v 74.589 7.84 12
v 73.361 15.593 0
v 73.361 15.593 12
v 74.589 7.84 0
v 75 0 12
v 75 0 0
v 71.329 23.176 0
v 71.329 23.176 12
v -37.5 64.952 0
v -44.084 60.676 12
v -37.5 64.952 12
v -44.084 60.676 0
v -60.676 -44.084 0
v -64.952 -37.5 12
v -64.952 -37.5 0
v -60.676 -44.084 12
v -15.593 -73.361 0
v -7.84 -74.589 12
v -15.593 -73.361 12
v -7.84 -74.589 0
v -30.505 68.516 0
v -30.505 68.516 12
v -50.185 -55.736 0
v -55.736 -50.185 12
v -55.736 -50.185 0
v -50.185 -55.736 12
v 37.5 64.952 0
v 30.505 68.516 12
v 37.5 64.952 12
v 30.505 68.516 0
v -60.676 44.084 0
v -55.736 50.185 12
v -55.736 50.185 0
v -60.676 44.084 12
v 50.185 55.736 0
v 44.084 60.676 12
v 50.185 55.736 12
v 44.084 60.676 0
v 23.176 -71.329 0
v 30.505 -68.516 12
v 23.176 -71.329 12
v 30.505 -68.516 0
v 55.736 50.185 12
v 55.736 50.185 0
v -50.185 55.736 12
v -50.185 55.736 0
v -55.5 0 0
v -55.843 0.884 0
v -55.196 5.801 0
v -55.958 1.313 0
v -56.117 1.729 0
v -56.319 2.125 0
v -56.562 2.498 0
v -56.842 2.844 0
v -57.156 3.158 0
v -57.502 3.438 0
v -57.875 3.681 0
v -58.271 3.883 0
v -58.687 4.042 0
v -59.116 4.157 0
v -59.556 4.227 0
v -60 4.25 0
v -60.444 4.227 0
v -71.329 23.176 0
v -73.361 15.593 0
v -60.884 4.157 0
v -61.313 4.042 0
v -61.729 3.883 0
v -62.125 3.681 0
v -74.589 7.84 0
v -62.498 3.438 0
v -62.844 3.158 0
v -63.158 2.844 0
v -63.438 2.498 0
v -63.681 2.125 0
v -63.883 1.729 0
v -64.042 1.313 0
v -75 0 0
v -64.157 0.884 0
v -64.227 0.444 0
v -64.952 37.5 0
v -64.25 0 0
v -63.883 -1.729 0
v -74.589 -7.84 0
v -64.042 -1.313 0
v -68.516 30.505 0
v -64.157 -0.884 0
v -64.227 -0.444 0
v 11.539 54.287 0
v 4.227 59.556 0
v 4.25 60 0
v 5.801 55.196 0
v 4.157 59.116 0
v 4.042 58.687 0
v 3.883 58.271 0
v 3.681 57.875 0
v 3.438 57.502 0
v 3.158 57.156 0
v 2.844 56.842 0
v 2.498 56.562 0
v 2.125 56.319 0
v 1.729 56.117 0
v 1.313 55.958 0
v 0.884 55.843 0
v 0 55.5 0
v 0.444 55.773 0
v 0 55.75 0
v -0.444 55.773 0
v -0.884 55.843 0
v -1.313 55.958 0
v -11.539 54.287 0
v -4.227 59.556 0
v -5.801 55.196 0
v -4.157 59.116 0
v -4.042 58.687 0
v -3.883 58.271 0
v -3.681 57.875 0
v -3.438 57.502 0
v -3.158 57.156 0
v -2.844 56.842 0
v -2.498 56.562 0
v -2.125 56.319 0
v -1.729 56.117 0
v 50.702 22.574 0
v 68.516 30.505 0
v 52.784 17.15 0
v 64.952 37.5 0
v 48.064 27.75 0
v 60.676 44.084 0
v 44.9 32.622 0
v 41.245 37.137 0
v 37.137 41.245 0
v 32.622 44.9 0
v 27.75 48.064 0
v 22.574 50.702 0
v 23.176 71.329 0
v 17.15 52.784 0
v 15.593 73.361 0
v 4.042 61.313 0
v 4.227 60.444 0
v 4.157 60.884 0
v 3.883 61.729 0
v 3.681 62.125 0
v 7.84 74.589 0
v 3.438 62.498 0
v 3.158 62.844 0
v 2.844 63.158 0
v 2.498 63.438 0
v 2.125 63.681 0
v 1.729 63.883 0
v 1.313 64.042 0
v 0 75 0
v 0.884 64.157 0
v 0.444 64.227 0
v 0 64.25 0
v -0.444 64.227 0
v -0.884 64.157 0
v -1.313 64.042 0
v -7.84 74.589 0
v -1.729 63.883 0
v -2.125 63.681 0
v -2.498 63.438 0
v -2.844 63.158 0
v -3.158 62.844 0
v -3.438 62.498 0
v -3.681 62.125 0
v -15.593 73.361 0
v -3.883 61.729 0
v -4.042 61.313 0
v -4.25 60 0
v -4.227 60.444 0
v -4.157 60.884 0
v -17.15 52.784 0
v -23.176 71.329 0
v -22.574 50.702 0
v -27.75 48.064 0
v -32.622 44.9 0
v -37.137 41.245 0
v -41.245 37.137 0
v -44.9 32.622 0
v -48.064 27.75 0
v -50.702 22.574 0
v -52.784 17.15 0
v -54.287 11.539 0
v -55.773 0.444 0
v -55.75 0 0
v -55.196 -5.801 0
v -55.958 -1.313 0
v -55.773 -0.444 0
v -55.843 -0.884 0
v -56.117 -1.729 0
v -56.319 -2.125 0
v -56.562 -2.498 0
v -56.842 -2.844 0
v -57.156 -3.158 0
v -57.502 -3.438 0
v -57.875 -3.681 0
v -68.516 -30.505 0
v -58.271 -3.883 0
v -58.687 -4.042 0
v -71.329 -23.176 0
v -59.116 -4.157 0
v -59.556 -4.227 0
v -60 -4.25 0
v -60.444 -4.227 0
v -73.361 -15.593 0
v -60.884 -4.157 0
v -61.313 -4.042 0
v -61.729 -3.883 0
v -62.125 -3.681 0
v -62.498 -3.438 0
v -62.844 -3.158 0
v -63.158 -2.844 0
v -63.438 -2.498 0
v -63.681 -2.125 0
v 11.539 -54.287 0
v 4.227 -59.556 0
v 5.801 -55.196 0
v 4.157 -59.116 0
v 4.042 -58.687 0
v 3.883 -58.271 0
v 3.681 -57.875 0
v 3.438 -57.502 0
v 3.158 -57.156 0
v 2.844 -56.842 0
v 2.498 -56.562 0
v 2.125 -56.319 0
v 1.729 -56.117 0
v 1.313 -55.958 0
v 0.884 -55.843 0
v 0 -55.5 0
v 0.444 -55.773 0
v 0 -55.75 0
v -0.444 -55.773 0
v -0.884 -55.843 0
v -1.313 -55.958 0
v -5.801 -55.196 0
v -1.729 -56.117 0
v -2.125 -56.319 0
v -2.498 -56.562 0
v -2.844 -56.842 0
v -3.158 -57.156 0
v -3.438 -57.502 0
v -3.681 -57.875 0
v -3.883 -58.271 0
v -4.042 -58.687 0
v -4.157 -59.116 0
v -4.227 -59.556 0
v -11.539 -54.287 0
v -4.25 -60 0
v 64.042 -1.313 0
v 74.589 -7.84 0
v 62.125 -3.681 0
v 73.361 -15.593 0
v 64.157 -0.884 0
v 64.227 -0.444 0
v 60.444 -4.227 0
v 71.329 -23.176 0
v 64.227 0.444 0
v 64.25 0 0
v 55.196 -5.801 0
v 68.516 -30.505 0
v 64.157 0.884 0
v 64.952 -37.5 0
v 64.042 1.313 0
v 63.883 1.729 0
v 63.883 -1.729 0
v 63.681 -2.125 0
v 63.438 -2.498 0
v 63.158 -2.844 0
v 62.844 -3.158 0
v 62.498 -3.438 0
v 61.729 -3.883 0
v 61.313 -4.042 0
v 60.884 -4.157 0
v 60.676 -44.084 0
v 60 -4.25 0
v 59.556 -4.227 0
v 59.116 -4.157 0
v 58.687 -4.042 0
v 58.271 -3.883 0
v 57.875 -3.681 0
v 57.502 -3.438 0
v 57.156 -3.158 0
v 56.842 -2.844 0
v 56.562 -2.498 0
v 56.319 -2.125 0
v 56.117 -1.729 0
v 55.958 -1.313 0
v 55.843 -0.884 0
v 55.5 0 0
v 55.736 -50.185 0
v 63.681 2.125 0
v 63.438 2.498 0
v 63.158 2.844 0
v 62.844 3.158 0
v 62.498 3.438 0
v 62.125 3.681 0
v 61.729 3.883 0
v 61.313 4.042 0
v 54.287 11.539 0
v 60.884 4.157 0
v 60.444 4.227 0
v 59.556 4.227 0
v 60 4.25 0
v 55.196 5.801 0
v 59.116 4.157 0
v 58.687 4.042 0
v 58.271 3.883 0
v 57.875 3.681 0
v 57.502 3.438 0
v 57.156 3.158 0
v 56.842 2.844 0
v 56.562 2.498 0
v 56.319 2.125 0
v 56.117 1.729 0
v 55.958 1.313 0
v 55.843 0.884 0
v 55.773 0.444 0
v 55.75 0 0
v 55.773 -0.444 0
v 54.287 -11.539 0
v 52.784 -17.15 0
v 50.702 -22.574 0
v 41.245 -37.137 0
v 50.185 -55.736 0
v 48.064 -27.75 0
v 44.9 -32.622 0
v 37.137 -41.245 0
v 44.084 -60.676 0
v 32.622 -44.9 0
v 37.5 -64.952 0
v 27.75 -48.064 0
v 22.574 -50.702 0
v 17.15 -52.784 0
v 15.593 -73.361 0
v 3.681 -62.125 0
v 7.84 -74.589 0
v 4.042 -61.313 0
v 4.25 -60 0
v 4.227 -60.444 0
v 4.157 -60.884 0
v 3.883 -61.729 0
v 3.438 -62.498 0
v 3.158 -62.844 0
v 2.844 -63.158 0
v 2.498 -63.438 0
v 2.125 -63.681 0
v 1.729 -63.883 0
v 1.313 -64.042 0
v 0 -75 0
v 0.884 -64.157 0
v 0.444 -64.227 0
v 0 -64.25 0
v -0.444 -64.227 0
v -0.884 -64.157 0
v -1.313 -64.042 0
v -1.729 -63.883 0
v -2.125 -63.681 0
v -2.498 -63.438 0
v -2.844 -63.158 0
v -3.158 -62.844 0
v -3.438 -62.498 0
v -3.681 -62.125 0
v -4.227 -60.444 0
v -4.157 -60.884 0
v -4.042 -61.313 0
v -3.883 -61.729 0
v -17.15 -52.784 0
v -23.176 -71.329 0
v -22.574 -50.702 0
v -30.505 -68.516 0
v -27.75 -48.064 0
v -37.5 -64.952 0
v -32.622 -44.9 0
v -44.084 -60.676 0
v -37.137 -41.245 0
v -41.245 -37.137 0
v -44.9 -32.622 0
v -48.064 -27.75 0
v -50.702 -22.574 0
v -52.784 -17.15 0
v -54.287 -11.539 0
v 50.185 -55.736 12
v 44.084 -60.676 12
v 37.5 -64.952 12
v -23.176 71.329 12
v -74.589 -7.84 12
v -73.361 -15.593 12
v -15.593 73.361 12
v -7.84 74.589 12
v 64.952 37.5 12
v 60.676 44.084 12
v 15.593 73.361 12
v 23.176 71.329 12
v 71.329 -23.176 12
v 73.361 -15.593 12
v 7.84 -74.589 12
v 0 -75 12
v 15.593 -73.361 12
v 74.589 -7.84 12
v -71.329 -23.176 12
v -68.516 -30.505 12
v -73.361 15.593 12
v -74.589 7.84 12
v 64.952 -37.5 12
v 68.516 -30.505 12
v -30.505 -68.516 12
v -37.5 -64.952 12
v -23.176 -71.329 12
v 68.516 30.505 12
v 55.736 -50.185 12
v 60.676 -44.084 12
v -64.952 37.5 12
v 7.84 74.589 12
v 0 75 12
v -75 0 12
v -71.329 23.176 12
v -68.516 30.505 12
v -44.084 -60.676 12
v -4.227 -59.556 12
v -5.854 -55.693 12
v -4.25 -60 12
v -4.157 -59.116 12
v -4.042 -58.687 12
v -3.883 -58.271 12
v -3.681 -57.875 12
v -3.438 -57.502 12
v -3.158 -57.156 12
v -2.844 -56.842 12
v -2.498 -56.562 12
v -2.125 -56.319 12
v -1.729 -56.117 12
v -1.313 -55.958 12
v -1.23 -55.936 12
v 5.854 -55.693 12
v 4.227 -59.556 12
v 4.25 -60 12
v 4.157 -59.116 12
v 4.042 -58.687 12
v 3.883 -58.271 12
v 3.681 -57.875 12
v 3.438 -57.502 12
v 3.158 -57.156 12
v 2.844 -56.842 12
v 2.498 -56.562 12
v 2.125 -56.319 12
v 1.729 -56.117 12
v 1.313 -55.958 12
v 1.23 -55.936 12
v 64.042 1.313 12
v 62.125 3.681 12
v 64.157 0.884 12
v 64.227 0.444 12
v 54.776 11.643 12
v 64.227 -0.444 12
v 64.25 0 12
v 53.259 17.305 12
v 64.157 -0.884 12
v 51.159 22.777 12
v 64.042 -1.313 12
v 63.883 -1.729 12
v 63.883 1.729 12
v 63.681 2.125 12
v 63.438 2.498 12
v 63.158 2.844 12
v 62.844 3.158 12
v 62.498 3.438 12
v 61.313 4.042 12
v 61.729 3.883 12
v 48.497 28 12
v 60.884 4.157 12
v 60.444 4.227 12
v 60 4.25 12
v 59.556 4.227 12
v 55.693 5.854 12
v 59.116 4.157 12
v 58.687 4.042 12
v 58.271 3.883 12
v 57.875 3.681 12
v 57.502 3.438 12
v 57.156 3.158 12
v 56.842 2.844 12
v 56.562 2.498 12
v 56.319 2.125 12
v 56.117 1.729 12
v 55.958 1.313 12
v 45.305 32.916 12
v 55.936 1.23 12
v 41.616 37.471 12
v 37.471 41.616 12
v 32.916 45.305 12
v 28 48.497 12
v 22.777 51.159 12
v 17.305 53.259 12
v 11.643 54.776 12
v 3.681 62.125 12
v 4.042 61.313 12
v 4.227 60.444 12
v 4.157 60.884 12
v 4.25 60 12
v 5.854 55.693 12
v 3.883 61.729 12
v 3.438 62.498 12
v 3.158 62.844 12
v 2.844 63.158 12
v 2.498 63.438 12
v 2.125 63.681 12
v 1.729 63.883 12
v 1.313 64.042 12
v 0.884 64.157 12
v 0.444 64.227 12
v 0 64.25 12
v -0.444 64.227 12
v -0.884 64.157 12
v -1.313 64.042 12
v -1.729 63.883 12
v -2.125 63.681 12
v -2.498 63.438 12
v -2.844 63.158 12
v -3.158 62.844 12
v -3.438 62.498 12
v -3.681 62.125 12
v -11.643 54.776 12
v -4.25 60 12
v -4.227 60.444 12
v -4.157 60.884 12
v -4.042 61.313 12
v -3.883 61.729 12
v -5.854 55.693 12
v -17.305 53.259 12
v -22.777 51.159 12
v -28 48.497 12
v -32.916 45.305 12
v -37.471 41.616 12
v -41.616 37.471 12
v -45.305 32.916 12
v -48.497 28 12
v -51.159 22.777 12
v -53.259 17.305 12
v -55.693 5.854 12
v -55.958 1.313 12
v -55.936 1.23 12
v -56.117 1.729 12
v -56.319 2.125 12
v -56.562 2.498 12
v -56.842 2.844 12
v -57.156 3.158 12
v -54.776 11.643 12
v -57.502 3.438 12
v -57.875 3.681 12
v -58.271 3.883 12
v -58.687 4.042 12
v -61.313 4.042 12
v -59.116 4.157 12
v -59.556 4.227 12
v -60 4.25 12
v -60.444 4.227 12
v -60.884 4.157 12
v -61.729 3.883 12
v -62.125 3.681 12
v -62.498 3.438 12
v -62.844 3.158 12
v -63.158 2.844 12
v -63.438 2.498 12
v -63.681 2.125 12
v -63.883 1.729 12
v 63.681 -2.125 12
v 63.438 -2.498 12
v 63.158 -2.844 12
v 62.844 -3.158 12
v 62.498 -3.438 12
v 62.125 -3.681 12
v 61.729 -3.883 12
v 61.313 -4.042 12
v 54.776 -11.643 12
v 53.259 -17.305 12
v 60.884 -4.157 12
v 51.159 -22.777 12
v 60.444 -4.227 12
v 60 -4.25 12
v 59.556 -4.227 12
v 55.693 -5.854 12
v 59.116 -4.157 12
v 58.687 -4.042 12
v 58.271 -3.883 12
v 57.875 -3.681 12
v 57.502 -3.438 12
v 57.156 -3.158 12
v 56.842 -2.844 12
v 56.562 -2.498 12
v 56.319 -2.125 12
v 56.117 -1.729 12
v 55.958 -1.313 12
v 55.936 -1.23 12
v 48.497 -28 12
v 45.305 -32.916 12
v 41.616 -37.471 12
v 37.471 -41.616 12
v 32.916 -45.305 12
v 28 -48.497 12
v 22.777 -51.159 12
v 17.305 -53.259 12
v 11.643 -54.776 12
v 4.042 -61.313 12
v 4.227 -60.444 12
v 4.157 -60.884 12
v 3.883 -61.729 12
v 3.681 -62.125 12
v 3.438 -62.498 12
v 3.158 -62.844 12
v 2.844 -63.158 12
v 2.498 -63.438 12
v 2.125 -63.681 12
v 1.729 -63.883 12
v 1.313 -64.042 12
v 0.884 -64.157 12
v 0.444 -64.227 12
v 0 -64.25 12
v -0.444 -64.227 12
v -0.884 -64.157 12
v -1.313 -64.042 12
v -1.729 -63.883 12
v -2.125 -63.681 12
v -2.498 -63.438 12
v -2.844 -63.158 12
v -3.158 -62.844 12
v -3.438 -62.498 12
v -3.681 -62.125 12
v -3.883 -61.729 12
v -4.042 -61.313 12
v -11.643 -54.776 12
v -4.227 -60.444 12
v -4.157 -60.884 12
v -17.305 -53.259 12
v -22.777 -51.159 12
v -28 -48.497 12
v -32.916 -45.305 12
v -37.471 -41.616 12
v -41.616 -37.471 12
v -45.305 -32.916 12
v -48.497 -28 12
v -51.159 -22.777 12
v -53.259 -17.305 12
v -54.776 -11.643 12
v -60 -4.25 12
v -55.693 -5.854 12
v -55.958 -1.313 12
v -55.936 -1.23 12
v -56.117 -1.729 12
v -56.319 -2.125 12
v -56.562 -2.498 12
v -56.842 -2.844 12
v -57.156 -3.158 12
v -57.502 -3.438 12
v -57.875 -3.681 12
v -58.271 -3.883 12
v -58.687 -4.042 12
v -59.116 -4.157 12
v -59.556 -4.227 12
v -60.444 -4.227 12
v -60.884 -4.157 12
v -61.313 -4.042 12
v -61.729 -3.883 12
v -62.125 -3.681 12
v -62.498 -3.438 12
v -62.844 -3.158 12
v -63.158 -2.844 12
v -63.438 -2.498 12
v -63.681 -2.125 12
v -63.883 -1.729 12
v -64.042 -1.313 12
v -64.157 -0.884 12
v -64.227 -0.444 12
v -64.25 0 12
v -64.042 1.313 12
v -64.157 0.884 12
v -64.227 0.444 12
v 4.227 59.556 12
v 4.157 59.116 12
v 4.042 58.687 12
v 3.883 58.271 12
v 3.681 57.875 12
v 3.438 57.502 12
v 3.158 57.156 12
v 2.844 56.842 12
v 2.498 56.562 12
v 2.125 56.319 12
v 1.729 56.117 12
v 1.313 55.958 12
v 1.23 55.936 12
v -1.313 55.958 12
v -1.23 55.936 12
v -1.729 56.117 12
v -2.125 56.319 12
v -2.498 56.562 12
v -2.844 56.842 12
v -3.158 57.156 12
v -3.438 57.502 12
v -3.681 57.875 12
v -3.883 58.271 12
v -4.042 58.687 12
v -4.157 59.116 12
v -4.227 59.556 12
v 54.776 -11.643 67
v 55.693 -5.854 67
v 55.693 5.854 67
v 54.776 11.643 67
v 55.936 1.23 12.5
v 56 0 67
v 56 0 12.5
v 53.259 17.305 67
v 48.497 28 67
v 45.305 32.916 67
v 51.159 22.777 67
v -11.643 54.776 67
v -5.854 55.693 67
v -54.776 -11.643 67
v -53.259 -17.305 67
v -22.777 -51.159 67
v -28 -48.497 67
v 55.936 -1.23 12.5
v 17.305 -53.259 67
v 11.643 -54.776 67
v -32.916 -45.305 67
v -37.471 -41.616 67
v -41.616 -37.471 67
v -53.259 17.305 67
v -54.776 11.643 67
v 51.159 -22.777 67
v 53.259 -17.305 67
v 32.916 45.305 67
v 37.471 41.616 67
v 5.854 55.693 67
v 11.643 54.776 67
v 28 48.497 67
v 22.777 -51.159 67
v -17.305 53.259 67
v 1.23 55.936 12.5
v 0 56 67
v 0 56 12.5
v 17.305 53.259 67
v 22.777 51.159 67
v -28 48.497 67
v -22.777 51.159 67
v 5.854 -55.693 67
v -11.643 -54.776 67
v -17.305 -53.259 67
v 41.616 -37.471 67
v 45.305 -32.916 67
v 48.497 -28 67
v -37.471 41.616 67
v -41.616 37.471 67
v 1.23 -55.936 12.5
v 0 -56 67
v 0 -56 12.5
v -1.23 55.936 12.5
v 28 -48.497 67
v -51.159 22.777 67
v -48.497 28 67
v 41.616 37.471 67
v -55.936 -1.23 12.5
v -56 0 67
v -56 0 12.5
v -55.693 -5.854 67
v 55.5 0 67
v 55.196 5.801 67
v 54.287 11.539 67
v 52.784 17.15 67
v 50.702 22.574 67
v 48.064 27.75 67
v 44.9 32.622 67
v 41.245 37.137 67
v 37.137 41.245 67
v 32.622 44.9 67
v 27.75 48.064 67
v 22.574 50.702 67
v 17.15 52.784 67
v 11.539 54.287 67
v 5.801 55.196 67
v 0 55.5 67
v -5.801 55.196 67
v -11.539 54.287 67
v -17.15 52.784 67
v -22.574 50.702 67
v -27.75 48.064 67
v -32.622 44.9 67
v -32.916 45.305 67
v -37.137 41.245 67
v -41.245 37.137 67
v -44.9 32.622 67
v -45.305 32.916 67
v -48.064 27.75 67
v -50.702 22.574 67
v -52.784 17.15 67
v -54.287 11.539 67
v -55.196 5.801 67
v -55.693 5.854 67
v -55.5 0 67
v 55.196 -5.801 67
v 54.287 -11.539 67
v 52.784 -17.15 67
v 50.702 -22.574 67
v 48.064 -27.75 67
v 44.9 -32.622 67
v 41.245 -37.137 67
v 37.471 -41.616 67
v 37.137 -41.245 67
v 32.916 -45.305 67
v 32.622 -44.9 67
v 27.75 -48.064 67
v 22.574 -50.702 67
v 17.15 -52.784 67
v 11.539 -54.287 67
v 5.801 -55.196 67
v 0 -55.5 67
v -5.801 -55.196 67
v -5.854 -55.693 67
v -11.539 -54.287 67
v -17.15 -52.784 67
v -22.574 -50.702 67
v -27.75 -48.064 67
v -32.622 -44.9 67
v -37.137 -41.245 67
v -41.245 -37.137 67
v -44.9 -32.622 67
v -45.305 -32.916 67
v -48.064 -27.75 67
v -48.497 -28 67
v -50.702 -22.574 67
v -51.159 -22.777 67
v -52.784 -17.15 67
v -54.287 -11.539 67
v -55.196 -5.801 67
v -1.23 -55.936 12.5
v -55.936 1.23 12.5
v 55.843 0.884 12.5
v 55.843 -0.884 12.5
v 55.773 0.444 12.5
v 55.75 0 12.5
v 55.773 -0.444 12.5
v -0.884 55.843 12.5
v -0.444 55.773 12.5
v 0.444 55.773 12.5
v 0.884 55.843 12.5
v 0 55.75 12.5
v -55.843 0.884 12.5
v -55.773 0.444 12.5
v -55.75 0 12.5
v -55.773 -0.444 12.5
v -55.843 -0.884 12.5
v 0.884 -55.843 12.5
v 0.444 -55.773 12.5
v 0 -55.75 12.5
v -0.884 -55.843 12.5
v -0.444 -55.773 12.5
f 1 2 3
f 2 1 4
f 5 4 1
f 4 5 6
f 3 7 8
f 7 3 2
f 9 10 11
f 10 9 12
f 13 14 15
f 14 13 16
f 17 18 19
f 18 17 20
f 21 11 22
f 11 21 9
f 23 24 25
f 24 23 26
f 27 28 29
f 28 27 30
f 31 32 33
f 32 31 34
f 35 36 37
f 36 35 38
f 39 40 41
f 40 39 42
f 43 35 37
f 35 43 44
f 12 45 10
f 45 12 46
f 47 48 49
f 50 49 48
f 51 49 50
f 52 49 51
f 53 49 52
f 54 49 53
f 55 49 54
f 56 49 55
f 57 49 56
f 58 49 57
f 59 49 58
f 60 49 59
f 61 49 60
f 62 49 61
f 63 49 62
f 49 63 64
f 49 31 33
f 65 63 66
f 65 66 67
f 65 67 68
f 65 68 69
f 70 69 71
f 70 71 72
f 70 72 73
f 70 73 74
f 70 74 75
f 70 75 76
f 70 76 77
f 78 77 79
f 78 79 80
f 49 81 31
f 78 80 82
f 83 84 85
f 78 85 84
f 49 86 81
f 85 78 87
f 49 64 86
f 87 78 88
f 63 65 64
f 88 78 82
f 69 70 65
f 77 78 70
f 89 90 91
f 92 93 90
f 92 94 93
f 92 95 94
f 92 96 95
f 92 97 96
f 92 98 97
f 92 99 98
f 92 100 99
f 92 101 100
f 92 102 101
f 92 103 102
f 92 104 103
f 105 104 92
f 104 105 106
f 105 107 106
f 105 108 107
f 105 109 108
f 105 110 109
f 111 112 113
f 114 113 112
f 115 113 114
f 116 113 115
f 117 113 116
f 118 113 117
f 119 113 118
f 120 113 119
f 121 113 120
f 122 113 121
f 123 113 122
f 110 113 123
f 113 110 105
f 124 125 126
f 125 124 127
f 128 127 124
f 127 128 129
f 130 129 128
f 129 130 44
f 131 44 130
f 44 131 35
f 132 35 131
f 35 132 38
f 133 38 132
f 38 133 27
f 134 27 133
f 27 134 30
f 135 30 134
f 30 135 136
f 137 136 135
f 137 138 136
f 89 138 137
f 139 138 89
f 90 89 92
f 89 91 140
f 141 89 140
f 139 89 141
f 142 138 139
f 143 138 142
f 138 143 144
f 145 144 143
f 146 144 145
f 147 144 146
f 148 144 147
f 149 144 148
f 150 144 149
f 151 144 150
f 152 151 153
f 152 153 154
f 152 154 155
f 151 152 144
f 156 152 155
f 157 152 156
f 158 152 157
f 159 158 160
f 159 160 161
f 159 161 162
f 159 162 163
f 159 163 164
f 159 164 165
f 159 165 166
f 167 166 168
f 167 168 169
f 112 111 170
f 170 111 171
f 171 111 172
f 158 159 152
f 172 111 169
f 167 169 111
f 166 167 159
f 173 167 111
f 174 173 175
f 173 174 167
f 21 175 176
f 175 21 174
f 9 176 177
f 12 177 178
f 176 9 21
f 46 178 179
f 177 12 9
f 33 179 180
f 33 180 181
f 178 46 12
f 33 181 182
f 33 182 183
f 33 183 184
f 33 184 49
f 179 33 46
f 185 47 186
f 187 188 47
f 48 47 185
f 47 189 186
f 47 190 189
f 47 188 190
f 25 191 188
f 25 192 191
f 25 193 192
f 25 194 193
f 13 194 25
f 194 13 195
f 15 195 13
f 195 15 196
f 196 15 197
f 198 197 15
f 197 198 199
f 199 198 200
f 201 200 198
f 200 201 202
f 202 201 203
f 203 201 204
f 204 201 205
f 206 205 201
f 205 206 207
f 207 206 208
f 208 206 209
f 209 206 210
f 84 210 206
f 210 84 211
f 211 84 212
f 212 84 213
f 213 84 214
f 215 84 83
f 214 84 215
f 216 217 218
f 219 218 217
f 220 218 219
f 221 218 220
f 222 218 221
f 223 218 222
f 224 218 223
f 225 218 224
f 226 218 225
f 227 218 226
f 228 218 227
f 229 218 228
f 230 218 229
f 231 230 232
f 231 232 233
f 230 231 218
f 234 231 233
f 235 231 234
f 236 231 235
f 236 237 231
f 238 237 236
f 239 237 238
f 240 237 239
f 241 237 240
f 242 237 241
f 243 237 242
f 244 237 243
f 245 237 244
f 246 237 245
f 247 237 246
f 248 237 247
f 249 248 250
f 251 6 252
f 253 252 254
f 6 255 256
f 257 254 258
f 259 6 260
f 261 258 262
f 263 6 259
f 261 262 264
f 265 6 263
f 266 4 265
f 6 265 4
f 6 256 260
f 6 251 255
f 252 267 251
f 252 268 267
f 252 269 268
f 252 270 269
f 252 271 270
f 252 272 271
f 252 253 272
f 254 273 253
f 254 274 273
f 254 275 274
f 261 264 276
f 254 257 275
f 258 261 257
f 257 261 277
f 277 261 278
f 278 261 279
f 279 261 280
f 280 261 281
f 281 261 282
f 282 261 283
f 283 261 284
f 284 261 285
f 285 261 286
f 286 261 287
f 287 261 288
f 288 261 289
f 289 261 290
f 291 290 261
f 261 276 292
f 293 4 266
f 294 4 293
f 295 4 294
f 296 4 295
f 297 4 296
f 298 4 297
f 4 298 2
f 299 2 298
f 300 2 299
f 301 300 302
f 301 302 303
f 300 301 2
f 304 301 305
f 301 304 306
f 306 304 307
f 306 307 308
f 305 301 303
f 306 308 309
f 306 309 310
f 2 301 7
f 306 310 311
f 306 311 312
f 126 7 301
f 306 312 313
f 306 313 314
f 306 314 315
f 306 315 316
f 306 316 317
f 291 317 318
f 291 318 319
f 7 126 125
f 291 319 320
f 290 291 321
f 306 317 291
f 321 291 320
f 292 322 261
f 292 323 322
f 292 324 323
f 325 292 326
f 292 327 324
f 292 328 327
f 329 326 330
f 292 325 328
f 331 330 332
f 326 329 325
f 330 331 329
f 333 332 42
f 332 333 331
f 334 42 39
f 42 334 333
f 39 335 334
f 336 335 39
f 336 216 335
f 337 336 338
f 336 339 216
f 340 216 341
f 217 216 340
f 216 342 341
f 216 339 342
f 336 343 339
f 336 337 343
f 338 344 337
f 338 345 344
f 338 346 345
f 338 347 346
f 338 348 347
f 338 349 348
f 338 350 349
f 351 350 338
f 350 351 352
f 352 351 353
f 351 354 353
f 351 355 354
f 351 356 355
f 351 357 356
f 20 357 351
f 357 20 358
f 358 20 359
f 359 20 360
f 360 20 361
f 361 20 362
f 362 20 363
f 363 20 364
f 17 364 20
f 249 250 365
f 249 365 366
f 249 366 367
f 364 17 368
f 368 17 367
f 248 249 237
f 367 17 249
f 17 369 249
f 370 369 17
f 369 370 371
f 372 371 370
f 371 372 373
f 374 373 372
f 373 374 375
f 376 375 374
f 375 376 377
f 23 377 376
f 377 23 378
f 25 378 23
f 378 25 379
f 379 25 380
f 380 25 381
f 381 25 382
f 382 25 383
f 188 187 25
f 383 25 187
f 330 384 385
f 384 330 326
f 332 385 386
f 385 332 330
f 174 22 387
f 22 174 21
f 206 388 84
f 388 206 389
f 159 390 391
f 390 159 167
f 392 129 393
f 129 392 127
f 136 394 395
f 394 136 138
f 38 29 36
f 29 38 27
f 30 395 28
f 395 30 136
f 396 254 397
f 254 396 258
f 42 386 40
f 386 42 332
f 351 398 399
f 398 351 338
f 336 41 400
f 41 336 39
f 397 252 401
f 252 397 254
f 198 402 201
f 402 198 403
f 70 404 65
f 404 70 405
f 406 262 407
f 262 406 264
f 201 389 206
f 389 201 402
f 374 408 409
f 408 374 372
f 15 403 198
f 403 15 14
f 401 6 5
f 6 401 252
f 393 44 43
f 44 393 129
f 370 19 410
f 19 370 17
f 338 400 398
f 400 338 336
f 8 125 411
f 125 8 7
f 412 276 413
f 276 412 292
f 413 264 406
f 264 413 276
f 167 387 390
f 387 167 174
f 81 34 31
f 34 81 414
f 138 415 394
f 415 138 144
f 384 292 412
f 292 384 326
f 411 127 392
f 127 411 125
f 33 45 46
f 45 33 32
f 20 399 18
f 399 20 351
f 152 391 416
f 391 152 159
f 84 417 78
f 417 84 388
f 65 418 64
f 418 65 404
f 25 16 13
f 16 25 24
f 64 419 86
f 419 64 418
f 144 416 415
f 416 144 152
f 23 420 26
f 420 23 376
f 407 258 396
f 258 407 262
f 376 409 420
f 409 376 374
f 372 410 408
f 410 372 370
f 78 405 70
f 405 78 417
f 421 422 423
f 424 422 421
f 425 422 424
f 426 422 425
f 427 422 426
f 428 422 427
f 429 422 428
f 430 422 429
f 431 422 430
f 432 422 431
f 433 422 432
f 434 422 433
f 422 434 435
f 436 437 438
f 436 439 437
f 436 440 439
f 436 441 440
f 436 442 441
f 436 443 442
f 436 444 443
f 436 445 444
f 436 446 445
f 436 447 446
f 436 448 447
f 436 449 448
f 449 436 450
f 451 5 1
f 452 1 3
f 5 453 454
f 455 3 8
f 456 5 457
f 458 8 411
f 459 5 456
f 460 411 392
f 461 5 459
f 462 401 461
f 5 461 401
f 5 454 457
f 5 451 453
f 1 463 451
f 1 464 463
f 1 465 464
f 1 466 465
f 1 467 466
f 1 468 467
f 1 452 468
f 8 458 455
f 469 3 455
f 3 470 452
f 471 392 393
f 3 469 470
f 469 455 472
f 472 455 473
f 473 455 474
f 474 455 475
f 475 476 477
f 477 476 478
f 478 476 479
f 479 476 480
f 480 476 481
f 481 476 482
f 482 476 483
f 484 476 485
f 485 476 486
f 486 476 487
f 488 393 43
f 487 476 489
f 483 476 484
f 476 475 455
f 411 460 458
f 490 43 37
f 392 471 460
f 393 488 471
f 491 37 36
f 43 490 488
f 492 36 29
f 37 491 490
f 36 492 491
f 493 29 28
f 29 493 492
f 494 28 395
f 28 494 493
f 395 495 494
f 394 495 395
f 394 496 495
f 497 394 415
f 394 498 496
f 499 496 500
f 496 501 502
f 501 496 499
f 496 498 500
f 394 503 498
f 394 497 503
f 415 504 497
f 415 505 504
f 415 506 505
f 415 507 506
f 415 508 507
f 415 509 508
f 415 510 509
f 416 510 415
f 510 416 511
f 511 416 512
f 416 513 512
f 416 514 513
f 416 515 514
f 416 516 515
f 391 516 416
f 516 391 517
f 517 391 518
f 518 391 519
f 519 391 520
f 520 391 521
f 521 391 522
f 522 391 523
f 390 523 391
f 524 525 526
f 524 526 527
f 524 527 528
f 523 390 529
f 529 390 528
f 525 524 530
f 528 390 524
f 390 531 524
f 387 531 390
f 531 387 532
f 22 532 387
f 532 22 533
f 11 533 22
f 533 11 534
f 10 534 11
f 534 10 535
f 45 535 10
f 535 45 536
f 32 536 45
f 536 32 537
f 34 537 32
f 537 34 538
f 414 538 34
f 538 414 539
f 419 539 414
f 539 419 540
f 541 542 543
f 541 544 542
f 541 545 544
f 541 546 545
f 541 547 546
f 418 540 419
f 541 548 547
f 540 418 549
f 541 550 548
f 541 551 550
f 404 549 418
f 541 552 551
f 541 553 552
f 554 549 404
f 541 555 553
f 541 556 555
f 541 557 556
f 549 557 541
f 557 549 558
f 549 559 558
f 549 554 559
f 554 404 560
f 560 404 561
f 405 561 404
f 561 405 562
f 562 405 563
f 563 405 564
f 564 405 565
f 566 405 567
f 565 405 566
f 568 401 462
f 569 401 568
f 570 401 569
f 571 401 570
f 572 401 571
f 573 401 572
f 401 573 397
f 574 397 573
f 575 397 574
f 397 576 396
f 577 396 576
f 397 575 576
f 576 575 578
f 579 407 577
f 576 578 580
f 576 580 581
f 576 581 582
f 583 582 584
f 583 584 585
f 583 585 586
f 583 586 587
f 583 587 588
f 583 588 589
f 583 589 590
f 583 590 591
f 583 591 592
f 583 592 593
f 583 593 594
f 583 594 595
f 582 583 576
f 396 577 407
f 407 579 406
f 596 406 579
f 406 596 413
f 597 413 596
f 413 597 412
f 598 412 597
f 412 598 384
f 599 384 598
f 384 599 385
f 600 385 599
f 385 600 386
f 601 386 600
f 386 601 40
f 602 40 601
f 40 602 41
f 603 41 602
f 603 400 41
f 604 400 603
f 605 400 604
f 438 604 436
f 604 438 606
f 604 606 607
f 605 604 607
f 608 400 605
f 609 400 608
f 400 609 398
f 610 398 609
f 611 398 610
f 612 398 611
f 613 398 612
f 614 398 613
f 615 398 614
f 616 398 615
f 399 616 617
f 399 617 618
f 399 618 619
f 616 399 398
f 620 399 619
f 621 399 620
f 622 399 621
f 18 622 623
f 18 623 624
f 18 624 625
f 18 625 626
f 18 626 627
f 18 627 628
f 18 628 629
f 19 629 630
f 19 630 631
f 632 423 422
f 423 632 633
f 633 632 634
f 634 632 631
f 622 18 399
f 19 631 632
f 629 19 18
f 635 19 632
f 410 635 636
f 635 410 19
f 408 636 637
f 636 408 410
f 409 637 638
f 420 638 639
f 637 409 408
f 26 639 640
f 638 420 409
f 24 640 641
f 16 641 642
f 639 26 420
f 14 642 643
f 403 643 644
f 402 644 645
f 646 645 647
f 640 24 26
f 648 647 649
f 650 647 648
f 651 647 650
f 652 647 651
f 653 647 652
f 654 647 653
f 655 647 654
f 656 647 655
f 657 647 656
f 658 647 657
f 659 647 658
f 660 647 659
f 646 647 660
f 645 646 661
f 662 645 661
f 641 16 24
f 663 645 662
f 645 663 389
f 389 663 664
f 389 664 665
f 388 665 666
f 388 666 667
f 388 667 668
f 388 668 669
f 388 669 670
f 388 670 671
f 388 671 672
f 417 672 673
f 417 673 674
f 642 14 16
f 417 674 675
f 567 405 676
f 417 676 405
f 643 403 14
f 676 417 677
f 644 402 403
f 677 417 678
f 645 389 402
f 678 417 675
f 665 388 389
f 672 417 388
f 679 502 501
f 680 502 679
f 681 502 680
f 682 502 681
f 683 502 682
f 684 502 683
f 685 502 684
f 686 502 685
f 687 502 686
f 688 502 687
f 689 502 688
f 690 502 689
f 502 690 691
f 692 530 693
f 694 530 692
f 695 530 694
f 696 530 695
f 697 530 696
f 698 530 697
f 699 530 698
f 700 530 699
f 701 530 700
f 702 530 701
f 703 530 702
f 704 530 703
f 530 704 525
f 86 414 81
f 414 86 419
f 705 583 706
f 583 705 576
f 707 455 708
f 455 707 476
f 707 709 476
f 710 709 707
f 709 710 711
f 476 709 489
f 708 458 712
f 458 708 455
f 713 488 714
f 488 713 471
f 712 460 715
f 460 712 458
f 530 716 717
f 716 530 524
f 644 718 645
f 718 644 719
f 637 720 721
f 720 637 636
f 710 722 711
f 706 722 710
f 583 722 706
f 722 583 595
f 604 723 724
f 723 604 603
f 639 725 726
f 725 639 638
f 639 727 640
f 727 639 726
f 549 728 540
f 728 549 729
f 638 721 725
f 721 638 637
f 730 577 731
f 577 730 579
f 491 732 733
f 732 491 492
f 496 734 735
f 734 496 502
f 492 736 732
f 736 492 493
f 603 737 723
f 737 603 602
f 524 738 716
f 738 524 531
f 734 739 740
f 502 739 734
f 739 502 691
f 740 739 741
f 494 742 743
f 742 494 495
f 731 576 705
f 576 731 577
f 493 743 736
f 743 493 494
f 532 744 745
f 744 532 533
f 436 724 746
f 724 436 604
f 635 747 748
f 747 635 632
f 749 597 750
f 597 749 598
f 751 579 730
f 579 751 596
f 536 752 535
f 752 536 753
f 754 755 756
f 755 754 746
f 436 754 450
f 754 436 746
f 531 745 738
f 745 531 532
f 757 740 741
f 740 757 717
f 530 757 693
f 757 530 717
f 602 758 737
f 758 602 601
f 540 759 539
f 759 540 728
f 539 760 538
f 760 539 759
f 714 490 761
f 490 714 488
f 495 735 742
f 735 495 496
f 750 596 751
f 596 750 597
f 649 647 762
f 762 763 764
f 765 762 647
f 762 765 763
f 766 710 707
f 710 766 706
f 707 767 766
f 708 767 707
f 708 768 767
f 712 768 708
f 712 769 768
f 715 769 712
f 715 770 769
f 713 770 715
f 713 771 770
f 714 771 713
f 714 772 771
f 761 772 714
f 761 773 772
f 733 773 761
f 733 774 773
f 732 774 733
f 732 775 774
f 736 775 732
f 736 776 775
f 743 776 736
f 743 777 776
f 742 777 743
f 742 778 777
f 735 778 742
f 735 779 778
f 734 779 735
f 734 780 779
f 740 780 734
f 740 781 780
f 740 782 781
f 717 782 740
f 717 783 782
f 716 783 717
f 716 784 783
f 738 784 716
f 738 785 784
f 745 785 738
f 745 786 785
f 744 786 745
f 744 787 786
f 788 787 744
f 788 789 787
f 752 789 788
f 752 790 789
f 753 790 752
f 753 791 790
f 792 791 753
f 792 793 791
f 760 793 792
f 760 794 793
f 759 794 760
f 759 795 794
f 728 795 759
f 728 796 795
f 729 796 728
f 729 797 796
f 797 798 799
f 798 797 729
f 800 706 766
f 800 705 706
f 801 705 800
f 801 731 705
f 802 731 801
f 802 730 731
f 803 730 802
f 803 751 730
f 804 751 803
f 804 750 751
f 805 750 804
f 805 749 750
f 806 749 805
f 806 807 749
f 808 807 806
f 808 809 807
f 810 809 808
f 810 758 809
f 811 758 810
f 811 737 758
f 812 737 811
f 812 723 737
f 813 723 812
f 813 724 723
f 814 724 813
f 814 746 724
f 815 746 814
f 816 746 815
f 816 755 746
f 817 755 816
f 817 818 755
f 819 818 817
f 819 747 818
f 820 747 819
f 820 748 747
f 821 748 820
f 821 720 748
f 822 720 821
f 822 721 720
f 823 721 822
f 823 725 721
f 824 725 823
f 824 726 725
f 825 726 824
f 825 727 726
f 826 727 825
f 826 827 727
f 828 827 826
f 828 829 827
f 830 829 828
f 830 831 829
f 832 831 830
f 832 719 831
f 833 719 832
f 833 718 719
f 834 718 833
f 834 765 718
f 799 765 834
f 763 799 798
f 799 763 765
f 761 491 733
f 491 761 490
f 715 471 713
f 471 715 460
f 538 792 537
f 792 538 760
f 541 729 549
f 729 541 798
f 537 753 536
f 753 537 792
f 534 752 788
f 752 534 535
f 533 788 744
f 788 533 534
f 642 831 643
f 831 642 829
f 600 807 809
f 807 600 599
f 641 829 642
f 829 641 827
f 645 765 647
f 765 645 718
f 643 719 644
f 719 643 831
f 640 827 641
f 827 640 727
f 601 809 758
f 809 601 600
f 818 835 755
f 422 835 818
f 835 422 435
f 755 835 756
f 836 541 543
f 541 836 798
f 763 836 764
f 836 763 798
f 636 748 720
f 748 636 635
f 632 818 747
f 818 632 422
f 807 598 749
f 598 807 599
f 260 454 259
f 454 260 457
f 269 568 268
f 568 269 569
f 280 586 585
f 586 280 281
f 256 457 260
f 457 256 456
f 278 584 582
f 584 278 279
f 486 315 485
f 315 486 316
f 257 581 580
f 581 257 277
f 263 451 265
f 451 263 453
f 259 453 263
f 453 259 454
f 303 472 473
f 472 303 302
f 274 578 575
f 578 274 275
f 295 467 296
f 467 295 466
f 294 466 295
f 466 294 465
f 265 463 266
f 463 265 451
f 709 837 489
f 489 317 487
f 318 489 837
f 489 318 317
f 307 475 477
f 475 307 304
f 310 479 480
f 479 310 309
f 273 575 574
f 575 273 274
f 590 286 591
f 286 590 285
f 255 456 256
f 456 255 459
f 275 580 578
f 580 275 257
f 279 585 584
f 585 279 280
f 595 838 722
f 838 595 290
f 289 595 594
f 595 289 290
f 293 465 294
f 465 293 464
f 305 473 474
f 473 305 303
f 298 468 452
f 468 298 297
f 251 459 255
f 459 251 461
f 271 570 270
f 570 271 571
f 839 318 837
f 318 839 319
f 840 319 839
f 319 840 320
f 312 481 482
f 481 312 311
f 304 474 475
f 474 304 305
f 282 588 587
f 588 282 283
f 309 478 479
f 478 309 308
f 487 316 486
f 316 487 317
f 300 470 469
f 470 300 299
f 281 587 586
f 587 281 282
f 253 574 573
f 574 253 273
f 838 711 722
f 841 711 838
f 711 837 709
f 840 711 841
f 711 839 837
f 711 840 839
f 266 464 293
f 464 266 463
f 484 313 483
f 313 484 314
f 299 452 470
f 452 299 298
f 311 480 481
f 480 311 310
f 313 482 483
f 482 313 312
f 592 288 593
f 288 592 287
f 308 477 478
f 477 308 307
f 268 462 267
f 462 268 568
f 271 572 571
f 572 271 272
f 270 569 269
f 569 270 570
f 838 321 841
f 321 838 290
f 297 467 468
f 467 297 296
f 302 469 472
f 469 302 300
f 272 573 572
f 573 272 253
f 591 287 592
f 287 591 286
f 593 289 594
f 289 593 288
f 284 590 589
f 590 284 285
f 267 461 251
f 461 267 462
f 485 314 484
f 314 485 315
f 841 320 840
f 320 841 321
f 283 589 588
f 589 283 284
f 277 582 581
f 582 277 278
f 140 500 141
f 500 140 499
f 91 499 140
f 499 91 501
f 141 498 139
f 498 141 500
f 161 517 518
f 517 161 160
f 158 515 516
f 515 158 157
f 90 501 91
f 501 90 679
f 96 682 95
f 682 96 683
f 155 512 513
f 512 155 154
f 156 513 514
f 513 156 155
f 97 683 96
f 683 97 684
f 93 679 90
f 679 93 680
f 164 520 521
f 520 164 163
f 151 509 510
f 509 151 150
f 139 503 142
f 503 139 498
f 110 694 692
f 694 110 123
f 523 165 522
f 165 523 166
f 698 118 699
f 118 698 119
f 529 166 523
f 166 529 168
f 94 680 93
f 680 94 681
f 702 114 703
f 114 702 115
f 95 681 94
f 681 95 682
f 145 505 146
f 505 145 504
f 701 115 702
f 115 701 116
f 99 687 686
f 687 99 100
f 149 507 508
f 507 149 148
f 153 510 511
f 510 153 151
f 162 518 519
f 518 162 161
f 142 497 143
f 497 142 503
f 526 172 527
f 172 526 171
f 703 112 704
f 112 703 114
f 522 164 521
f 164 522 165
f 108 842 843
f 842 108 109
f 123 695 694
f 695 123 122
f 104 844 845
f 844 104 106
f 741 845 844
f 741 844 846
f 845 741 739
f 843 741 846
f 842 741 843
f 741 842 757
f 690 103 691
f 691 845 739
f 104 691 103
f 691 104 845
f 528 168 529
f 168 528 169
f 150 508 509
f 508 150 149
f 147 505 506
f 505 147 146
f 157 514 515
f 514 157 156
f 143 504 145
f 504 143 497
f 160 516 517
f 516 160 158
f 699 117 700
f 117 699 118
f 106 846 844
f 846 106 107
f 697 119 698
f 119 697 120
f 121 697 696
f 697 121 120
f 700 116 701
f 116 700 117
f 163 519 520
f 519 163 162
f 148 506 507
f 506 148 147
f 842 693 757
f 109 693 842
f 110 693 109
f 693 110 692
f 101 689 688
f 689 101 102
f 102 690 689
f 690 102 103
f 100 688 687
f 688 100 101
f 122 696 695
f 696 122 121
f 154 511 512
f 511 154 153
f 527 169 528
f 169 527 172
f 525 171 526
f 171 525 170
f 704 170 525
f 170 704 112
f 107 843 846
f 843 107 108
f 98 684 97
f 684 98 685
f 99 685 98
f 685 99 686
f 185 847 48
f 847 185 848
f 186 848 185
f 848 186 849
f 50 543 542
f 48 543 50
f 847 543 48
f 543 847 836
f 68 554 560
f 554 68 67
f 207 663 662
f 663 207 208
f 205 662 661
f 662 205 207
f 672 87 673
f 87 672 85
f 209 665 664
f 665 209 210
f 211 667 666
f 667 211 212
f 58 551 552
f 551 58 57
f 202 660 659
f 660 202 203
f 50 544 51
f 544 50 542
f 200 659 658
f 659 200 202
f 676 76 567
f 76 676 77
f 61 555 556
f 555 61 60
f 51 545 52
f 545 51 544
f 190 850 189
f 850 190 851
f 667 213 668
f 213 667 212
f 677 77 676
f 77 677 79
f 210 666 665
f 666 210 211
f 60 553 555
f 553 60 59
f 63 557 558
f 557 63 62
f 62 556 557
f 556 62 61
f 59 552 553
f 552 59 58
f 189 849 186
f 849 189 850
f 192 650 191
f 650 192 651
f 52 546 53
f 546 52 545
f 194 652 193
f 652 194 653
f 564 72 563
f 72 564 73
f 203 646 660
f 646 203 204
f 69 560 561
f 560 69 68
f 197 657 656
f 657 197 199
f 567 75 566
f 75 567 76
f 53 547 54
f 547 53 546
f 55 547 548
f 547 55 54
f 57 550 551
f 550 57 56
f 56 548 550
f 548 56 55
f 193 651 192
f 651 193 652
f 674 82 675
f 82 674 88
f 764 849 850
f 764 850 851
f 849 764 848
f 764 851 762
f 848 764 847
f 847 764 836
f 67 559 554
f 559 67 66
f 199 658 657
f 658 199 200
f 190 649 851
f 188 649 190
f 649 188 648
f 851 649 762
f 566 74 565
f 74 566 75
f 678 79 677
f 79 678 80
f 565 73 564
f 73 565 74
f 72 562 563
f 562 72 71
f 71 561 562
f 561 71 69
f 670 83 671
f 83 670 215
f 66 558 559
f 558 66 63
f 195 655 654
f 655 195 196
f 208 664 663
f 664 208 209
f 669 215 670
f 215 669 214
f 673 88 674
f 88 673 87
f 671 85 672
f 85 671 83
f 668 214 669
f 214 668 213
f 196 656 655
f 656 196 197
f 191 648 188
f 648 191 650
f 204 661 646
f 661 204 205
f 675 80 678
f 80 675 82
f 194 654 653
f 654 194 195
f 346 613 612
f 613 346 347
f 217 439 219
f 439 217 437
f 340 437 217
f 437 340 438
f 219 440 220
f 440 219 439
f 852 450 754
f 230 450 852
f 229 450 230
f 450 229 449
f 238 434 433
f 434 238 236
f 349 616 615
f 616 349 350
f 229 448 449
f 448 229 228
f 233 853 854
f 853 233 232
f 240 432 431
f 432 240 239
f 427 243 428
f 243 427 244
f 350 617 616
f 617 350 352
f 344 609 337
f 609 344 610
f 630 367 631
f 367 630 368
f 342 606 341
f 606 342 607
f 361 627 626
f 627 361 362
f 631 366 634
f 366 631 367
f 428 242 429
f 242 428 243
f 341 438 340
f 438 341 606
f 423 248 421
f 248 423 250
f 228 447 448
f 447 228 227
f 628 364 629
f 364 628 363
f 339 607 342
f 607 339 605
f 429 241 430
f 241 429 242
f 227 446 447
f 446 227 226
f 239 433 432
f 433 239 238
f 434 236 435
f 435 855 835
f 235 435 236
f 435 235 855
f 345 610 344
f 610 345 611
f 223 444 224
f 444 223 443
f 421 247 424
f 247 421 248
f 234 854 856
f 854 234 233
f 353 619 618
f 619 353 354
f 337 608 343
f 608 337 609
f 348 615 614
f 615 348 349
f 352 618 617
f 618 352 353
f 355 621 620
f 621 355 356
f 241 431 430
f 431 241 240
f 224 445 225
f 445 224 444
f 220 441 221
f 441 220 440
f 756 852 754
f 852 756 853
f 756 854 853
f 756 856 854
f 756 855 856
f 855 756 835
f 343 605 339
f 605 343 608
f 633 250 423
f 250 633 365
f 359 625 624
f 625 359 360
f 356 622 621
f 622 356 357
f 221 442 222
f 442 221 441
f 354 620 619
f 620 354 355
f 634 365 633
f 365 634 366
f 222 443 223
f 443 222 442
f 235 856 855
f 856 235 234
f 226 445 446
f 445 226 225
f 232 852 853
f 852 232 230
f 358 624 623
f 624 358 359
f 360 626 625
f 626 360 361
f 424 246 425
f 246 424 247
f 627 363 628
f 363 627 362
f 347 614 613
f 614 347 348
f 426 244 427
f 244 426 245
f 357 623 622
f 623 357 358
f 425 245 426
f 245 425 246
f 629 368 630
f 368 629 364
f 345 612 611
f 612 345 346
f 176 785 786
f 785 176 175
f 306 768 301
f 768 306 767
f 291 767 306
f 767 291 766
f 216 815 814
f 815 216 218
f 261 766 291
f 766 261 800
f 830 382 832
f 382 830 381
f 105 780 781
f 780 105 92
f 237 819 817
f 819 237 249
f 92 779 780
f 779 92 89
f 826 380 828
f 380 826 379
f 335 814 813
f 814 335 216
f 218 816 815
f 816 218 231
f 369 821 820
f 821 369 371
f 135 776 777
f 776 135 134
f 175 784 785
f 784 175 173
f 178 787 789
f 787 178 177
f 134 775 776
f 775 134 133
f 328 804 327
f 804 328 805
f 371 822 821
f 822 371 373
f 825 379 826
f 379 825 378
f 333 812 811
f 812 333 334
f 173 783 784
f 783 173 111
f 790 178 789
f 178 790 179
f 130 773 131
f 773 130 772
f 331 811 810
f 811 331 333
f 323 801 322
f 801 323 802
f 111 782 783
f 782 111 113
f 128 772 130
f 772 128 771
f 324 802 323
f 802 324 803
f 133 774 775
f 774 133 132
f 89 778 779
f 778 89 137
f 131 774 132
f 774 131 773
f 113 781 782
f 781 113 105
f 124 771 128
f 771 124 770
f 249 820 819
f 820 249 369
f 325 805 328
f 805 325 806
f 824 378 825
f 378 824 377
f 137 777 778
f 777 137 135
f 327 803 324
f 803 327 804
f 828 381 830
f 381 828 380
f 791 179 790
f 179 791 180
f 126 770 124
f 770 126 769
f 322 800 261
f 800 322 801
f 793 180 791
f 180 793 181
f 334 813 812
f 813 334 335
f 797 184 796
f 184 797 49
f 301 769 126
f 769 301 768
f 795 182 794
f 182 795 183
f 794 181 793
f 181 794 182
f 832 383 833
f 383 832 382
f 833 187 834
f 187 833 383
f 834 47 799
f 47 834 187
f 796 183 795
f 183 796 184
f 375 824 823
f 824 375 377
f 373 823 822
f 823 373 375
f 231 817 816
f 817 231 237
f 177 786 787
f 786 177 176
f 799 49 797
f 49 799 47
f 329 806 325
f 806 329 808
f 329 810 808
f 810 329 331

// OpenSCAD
// ==========================================
// CONNECTOR: Flanged Bulkhead Interface (Strategy 2)
// Quick-disconnect bolted connector for d110 PE pipe electrofusion fitting
// GOST 32415-2013 compatible, PN16 rated
// ==========================================

include <lib_d110.scad>

// Flanged connector parameters (based on d110 standard sizing)
FLANGE_OD = 150;          // Flange outer diameter (mm)
FLANGE_THICKNESS = 12;    // Flange face thickness (mm)
BOLT_PATTERN_PCD = 120;   // Bolt circle diameter (mm)
BOLT_HOLE_DIA = 8.5;      // M8 bolt hole diameter (clearance fit)
NUM_BOLTS = 4;            // Four-point bolt pattern
SOCKET_ENGAGEMENT = 55;   // Socket engagement depth (matches pipe socket)
COUNTERBORE_DIA = 15;     // Counterbore for elastomer O-ring
COUNTERBORE_DEPTH = 4;    // Counterbore depth for O-ring seat

$fn = 60;

module flanged_connector() {
    // Main flange body (disc with socket boss)
    union() {
        // Flange disc
        cylinder(h = FLANGE_THICKNESS, r = FLANGE_OD/2, center = false);

        // Socket boss (raised center for pipe insertion)
        translate([0, 0, FLANGE_THICKNESS])
            cylinder(h = SOCKET_ENGAGEMENT, r = OD_110/2 + 1, center = false);
    }
}

module flanged_connector_with_bore() {
    difference() {
        flanged_connector();

        // Central socket bore (female half)
        translate([0, 0, -0.5])
            cylinder(h = FLANGE_THICKNESS + SOCKET_ENGAGEMENT + 1, r = OD_110/2 + 0.5, center = false);

        // Counterbore for elastomer O-ring sealing surface
        translate([0, 0, FLANGE_THICKNESS - COUNTERBORE_DEPTH])
            cylinder(h = COUNTERBORE_DEPTH + 0.1, r = COUNTERBORE_DIA/2, center = false);

        // Four bolt holes on PCD
        for (angle = [0, 90, 180, 270]) {
            translate([BOLT_PATTERN_PCD/2 * cos(angle), BOLT_PATTERN_PCD/2 * sin(angle), -0.5])
                cylinder(h = FLANGE_THICKNESS + 1, r = BOLT_HOLE_DIA/2, center = false);
        }
    }
}

module male_connector_half() {
    // Male side: raised socket boss for insertion into female
    difference() {
        union() {
            // Base flange
            cylinder(h = FLANGE_THICKNESS, r = FLANGE_OD/2, center = false);

            // Male protrusion (slightly tapered for centering)
            translate([0, 0, FLANGE_THICKNESS])
                cylinder(h = SOCKET_ENGAGEMENT - 2, r1 = OD_110/2 - 0.5, r2 = OD_110/2 - 2, center = false);
        }

        // Four bolt holes (clearance for fasteners)
        for (angle = [0, 90, 180, 270]) {
            translate([BOLT_PATTERN_PCD/2 * cos(angle), BOLT_PATTERN_PCD/2 * sin(angle), -0.5])
                cylinder(h = FLANGE_THICKNESS + 1, r = BOLT_HOLE_DIA/2, center = false);
        }
    }
}

module female_connector_half() {
    // Female side: recessed socket for insertion
    difference() {
        union() {
            // Base flange
            cylinder(h = FLANGE_THICKNESS, r = FLANGE_OD/2, center = false);

            // Boss for socket engagement
            translate([0, 0, FLANGE_THICKNESS])
                cylinder(h = 5, r = OD_110/2 + 1.5, center = false);
        }

        // Central recess (female socket bore)
        translate([0, 0, FLANGE_THICKNESS])
            cylinder(h = SOCKET_ENGAGEMENT, r = OD_110/2 - 0.5, center = false);

        // Counterbore for O-ring sealing
        translate([0, 0, FLANGE_THICKNESS - COUNTERBORE_DEPTH])
            cylinder(h = COUNTERBORE_DEPTH + 0.1, r = COUNTERBORE_DIA/2, center = false);

        // Four bolt holes
        for (angle = [0, 90, 180, 270]) {
            translate([BOLT_PATTERN_PCD/2 * cos(angle), BOLT_PATTERN_PCD/2 * sin(angle), -0.5])
                cylinder(h = FLANGE_THICKNESS + 1, r = BOLT_HOLE_DIA/2, center = false);
        }
    }
}

// === Assembly Views ===

// Single standard flange connector (for reference)
color("DarkBlue") flanged_connector_with_bore();

// Uncomment below to view male-female assembly (separated for clarity)
/*
translate([0, 0, 0])
    color("RoyalBlue")
    male_connector_half();

translate([0, 0, FLANGE_THICKNESS + SOCKET_ENGAGEMENT + 10])
    color("SteelBlue")
    female_connector_half();

// Optional: show bolt positions
for (angle = [0, 90, 180, 270]) {
    translate([BOLT_PATTERN_PCD/2 * cos(angle), BOLT_PATTERN_PCD/2 * sin(angle), -5])
        color("Silver")
        cylinder(h = 3, r = 4, center = false);
}
*/

// === Dimensions ===
// Flange OD: 150 mm
// Flange thickness: 12 mm
// Socket engagement depth: 55 mm
// Bolt pattern: 4× M8 on 120 mm PCD
// Counterbore: 15 mm diameter, 4 mm deep (FKM/Viton O-ring seat)
// Total socket depth for pipe insertion: 55 mm
// Pressure rating: PN16 (160 bar) with proper bolt torque and O-ring compression
